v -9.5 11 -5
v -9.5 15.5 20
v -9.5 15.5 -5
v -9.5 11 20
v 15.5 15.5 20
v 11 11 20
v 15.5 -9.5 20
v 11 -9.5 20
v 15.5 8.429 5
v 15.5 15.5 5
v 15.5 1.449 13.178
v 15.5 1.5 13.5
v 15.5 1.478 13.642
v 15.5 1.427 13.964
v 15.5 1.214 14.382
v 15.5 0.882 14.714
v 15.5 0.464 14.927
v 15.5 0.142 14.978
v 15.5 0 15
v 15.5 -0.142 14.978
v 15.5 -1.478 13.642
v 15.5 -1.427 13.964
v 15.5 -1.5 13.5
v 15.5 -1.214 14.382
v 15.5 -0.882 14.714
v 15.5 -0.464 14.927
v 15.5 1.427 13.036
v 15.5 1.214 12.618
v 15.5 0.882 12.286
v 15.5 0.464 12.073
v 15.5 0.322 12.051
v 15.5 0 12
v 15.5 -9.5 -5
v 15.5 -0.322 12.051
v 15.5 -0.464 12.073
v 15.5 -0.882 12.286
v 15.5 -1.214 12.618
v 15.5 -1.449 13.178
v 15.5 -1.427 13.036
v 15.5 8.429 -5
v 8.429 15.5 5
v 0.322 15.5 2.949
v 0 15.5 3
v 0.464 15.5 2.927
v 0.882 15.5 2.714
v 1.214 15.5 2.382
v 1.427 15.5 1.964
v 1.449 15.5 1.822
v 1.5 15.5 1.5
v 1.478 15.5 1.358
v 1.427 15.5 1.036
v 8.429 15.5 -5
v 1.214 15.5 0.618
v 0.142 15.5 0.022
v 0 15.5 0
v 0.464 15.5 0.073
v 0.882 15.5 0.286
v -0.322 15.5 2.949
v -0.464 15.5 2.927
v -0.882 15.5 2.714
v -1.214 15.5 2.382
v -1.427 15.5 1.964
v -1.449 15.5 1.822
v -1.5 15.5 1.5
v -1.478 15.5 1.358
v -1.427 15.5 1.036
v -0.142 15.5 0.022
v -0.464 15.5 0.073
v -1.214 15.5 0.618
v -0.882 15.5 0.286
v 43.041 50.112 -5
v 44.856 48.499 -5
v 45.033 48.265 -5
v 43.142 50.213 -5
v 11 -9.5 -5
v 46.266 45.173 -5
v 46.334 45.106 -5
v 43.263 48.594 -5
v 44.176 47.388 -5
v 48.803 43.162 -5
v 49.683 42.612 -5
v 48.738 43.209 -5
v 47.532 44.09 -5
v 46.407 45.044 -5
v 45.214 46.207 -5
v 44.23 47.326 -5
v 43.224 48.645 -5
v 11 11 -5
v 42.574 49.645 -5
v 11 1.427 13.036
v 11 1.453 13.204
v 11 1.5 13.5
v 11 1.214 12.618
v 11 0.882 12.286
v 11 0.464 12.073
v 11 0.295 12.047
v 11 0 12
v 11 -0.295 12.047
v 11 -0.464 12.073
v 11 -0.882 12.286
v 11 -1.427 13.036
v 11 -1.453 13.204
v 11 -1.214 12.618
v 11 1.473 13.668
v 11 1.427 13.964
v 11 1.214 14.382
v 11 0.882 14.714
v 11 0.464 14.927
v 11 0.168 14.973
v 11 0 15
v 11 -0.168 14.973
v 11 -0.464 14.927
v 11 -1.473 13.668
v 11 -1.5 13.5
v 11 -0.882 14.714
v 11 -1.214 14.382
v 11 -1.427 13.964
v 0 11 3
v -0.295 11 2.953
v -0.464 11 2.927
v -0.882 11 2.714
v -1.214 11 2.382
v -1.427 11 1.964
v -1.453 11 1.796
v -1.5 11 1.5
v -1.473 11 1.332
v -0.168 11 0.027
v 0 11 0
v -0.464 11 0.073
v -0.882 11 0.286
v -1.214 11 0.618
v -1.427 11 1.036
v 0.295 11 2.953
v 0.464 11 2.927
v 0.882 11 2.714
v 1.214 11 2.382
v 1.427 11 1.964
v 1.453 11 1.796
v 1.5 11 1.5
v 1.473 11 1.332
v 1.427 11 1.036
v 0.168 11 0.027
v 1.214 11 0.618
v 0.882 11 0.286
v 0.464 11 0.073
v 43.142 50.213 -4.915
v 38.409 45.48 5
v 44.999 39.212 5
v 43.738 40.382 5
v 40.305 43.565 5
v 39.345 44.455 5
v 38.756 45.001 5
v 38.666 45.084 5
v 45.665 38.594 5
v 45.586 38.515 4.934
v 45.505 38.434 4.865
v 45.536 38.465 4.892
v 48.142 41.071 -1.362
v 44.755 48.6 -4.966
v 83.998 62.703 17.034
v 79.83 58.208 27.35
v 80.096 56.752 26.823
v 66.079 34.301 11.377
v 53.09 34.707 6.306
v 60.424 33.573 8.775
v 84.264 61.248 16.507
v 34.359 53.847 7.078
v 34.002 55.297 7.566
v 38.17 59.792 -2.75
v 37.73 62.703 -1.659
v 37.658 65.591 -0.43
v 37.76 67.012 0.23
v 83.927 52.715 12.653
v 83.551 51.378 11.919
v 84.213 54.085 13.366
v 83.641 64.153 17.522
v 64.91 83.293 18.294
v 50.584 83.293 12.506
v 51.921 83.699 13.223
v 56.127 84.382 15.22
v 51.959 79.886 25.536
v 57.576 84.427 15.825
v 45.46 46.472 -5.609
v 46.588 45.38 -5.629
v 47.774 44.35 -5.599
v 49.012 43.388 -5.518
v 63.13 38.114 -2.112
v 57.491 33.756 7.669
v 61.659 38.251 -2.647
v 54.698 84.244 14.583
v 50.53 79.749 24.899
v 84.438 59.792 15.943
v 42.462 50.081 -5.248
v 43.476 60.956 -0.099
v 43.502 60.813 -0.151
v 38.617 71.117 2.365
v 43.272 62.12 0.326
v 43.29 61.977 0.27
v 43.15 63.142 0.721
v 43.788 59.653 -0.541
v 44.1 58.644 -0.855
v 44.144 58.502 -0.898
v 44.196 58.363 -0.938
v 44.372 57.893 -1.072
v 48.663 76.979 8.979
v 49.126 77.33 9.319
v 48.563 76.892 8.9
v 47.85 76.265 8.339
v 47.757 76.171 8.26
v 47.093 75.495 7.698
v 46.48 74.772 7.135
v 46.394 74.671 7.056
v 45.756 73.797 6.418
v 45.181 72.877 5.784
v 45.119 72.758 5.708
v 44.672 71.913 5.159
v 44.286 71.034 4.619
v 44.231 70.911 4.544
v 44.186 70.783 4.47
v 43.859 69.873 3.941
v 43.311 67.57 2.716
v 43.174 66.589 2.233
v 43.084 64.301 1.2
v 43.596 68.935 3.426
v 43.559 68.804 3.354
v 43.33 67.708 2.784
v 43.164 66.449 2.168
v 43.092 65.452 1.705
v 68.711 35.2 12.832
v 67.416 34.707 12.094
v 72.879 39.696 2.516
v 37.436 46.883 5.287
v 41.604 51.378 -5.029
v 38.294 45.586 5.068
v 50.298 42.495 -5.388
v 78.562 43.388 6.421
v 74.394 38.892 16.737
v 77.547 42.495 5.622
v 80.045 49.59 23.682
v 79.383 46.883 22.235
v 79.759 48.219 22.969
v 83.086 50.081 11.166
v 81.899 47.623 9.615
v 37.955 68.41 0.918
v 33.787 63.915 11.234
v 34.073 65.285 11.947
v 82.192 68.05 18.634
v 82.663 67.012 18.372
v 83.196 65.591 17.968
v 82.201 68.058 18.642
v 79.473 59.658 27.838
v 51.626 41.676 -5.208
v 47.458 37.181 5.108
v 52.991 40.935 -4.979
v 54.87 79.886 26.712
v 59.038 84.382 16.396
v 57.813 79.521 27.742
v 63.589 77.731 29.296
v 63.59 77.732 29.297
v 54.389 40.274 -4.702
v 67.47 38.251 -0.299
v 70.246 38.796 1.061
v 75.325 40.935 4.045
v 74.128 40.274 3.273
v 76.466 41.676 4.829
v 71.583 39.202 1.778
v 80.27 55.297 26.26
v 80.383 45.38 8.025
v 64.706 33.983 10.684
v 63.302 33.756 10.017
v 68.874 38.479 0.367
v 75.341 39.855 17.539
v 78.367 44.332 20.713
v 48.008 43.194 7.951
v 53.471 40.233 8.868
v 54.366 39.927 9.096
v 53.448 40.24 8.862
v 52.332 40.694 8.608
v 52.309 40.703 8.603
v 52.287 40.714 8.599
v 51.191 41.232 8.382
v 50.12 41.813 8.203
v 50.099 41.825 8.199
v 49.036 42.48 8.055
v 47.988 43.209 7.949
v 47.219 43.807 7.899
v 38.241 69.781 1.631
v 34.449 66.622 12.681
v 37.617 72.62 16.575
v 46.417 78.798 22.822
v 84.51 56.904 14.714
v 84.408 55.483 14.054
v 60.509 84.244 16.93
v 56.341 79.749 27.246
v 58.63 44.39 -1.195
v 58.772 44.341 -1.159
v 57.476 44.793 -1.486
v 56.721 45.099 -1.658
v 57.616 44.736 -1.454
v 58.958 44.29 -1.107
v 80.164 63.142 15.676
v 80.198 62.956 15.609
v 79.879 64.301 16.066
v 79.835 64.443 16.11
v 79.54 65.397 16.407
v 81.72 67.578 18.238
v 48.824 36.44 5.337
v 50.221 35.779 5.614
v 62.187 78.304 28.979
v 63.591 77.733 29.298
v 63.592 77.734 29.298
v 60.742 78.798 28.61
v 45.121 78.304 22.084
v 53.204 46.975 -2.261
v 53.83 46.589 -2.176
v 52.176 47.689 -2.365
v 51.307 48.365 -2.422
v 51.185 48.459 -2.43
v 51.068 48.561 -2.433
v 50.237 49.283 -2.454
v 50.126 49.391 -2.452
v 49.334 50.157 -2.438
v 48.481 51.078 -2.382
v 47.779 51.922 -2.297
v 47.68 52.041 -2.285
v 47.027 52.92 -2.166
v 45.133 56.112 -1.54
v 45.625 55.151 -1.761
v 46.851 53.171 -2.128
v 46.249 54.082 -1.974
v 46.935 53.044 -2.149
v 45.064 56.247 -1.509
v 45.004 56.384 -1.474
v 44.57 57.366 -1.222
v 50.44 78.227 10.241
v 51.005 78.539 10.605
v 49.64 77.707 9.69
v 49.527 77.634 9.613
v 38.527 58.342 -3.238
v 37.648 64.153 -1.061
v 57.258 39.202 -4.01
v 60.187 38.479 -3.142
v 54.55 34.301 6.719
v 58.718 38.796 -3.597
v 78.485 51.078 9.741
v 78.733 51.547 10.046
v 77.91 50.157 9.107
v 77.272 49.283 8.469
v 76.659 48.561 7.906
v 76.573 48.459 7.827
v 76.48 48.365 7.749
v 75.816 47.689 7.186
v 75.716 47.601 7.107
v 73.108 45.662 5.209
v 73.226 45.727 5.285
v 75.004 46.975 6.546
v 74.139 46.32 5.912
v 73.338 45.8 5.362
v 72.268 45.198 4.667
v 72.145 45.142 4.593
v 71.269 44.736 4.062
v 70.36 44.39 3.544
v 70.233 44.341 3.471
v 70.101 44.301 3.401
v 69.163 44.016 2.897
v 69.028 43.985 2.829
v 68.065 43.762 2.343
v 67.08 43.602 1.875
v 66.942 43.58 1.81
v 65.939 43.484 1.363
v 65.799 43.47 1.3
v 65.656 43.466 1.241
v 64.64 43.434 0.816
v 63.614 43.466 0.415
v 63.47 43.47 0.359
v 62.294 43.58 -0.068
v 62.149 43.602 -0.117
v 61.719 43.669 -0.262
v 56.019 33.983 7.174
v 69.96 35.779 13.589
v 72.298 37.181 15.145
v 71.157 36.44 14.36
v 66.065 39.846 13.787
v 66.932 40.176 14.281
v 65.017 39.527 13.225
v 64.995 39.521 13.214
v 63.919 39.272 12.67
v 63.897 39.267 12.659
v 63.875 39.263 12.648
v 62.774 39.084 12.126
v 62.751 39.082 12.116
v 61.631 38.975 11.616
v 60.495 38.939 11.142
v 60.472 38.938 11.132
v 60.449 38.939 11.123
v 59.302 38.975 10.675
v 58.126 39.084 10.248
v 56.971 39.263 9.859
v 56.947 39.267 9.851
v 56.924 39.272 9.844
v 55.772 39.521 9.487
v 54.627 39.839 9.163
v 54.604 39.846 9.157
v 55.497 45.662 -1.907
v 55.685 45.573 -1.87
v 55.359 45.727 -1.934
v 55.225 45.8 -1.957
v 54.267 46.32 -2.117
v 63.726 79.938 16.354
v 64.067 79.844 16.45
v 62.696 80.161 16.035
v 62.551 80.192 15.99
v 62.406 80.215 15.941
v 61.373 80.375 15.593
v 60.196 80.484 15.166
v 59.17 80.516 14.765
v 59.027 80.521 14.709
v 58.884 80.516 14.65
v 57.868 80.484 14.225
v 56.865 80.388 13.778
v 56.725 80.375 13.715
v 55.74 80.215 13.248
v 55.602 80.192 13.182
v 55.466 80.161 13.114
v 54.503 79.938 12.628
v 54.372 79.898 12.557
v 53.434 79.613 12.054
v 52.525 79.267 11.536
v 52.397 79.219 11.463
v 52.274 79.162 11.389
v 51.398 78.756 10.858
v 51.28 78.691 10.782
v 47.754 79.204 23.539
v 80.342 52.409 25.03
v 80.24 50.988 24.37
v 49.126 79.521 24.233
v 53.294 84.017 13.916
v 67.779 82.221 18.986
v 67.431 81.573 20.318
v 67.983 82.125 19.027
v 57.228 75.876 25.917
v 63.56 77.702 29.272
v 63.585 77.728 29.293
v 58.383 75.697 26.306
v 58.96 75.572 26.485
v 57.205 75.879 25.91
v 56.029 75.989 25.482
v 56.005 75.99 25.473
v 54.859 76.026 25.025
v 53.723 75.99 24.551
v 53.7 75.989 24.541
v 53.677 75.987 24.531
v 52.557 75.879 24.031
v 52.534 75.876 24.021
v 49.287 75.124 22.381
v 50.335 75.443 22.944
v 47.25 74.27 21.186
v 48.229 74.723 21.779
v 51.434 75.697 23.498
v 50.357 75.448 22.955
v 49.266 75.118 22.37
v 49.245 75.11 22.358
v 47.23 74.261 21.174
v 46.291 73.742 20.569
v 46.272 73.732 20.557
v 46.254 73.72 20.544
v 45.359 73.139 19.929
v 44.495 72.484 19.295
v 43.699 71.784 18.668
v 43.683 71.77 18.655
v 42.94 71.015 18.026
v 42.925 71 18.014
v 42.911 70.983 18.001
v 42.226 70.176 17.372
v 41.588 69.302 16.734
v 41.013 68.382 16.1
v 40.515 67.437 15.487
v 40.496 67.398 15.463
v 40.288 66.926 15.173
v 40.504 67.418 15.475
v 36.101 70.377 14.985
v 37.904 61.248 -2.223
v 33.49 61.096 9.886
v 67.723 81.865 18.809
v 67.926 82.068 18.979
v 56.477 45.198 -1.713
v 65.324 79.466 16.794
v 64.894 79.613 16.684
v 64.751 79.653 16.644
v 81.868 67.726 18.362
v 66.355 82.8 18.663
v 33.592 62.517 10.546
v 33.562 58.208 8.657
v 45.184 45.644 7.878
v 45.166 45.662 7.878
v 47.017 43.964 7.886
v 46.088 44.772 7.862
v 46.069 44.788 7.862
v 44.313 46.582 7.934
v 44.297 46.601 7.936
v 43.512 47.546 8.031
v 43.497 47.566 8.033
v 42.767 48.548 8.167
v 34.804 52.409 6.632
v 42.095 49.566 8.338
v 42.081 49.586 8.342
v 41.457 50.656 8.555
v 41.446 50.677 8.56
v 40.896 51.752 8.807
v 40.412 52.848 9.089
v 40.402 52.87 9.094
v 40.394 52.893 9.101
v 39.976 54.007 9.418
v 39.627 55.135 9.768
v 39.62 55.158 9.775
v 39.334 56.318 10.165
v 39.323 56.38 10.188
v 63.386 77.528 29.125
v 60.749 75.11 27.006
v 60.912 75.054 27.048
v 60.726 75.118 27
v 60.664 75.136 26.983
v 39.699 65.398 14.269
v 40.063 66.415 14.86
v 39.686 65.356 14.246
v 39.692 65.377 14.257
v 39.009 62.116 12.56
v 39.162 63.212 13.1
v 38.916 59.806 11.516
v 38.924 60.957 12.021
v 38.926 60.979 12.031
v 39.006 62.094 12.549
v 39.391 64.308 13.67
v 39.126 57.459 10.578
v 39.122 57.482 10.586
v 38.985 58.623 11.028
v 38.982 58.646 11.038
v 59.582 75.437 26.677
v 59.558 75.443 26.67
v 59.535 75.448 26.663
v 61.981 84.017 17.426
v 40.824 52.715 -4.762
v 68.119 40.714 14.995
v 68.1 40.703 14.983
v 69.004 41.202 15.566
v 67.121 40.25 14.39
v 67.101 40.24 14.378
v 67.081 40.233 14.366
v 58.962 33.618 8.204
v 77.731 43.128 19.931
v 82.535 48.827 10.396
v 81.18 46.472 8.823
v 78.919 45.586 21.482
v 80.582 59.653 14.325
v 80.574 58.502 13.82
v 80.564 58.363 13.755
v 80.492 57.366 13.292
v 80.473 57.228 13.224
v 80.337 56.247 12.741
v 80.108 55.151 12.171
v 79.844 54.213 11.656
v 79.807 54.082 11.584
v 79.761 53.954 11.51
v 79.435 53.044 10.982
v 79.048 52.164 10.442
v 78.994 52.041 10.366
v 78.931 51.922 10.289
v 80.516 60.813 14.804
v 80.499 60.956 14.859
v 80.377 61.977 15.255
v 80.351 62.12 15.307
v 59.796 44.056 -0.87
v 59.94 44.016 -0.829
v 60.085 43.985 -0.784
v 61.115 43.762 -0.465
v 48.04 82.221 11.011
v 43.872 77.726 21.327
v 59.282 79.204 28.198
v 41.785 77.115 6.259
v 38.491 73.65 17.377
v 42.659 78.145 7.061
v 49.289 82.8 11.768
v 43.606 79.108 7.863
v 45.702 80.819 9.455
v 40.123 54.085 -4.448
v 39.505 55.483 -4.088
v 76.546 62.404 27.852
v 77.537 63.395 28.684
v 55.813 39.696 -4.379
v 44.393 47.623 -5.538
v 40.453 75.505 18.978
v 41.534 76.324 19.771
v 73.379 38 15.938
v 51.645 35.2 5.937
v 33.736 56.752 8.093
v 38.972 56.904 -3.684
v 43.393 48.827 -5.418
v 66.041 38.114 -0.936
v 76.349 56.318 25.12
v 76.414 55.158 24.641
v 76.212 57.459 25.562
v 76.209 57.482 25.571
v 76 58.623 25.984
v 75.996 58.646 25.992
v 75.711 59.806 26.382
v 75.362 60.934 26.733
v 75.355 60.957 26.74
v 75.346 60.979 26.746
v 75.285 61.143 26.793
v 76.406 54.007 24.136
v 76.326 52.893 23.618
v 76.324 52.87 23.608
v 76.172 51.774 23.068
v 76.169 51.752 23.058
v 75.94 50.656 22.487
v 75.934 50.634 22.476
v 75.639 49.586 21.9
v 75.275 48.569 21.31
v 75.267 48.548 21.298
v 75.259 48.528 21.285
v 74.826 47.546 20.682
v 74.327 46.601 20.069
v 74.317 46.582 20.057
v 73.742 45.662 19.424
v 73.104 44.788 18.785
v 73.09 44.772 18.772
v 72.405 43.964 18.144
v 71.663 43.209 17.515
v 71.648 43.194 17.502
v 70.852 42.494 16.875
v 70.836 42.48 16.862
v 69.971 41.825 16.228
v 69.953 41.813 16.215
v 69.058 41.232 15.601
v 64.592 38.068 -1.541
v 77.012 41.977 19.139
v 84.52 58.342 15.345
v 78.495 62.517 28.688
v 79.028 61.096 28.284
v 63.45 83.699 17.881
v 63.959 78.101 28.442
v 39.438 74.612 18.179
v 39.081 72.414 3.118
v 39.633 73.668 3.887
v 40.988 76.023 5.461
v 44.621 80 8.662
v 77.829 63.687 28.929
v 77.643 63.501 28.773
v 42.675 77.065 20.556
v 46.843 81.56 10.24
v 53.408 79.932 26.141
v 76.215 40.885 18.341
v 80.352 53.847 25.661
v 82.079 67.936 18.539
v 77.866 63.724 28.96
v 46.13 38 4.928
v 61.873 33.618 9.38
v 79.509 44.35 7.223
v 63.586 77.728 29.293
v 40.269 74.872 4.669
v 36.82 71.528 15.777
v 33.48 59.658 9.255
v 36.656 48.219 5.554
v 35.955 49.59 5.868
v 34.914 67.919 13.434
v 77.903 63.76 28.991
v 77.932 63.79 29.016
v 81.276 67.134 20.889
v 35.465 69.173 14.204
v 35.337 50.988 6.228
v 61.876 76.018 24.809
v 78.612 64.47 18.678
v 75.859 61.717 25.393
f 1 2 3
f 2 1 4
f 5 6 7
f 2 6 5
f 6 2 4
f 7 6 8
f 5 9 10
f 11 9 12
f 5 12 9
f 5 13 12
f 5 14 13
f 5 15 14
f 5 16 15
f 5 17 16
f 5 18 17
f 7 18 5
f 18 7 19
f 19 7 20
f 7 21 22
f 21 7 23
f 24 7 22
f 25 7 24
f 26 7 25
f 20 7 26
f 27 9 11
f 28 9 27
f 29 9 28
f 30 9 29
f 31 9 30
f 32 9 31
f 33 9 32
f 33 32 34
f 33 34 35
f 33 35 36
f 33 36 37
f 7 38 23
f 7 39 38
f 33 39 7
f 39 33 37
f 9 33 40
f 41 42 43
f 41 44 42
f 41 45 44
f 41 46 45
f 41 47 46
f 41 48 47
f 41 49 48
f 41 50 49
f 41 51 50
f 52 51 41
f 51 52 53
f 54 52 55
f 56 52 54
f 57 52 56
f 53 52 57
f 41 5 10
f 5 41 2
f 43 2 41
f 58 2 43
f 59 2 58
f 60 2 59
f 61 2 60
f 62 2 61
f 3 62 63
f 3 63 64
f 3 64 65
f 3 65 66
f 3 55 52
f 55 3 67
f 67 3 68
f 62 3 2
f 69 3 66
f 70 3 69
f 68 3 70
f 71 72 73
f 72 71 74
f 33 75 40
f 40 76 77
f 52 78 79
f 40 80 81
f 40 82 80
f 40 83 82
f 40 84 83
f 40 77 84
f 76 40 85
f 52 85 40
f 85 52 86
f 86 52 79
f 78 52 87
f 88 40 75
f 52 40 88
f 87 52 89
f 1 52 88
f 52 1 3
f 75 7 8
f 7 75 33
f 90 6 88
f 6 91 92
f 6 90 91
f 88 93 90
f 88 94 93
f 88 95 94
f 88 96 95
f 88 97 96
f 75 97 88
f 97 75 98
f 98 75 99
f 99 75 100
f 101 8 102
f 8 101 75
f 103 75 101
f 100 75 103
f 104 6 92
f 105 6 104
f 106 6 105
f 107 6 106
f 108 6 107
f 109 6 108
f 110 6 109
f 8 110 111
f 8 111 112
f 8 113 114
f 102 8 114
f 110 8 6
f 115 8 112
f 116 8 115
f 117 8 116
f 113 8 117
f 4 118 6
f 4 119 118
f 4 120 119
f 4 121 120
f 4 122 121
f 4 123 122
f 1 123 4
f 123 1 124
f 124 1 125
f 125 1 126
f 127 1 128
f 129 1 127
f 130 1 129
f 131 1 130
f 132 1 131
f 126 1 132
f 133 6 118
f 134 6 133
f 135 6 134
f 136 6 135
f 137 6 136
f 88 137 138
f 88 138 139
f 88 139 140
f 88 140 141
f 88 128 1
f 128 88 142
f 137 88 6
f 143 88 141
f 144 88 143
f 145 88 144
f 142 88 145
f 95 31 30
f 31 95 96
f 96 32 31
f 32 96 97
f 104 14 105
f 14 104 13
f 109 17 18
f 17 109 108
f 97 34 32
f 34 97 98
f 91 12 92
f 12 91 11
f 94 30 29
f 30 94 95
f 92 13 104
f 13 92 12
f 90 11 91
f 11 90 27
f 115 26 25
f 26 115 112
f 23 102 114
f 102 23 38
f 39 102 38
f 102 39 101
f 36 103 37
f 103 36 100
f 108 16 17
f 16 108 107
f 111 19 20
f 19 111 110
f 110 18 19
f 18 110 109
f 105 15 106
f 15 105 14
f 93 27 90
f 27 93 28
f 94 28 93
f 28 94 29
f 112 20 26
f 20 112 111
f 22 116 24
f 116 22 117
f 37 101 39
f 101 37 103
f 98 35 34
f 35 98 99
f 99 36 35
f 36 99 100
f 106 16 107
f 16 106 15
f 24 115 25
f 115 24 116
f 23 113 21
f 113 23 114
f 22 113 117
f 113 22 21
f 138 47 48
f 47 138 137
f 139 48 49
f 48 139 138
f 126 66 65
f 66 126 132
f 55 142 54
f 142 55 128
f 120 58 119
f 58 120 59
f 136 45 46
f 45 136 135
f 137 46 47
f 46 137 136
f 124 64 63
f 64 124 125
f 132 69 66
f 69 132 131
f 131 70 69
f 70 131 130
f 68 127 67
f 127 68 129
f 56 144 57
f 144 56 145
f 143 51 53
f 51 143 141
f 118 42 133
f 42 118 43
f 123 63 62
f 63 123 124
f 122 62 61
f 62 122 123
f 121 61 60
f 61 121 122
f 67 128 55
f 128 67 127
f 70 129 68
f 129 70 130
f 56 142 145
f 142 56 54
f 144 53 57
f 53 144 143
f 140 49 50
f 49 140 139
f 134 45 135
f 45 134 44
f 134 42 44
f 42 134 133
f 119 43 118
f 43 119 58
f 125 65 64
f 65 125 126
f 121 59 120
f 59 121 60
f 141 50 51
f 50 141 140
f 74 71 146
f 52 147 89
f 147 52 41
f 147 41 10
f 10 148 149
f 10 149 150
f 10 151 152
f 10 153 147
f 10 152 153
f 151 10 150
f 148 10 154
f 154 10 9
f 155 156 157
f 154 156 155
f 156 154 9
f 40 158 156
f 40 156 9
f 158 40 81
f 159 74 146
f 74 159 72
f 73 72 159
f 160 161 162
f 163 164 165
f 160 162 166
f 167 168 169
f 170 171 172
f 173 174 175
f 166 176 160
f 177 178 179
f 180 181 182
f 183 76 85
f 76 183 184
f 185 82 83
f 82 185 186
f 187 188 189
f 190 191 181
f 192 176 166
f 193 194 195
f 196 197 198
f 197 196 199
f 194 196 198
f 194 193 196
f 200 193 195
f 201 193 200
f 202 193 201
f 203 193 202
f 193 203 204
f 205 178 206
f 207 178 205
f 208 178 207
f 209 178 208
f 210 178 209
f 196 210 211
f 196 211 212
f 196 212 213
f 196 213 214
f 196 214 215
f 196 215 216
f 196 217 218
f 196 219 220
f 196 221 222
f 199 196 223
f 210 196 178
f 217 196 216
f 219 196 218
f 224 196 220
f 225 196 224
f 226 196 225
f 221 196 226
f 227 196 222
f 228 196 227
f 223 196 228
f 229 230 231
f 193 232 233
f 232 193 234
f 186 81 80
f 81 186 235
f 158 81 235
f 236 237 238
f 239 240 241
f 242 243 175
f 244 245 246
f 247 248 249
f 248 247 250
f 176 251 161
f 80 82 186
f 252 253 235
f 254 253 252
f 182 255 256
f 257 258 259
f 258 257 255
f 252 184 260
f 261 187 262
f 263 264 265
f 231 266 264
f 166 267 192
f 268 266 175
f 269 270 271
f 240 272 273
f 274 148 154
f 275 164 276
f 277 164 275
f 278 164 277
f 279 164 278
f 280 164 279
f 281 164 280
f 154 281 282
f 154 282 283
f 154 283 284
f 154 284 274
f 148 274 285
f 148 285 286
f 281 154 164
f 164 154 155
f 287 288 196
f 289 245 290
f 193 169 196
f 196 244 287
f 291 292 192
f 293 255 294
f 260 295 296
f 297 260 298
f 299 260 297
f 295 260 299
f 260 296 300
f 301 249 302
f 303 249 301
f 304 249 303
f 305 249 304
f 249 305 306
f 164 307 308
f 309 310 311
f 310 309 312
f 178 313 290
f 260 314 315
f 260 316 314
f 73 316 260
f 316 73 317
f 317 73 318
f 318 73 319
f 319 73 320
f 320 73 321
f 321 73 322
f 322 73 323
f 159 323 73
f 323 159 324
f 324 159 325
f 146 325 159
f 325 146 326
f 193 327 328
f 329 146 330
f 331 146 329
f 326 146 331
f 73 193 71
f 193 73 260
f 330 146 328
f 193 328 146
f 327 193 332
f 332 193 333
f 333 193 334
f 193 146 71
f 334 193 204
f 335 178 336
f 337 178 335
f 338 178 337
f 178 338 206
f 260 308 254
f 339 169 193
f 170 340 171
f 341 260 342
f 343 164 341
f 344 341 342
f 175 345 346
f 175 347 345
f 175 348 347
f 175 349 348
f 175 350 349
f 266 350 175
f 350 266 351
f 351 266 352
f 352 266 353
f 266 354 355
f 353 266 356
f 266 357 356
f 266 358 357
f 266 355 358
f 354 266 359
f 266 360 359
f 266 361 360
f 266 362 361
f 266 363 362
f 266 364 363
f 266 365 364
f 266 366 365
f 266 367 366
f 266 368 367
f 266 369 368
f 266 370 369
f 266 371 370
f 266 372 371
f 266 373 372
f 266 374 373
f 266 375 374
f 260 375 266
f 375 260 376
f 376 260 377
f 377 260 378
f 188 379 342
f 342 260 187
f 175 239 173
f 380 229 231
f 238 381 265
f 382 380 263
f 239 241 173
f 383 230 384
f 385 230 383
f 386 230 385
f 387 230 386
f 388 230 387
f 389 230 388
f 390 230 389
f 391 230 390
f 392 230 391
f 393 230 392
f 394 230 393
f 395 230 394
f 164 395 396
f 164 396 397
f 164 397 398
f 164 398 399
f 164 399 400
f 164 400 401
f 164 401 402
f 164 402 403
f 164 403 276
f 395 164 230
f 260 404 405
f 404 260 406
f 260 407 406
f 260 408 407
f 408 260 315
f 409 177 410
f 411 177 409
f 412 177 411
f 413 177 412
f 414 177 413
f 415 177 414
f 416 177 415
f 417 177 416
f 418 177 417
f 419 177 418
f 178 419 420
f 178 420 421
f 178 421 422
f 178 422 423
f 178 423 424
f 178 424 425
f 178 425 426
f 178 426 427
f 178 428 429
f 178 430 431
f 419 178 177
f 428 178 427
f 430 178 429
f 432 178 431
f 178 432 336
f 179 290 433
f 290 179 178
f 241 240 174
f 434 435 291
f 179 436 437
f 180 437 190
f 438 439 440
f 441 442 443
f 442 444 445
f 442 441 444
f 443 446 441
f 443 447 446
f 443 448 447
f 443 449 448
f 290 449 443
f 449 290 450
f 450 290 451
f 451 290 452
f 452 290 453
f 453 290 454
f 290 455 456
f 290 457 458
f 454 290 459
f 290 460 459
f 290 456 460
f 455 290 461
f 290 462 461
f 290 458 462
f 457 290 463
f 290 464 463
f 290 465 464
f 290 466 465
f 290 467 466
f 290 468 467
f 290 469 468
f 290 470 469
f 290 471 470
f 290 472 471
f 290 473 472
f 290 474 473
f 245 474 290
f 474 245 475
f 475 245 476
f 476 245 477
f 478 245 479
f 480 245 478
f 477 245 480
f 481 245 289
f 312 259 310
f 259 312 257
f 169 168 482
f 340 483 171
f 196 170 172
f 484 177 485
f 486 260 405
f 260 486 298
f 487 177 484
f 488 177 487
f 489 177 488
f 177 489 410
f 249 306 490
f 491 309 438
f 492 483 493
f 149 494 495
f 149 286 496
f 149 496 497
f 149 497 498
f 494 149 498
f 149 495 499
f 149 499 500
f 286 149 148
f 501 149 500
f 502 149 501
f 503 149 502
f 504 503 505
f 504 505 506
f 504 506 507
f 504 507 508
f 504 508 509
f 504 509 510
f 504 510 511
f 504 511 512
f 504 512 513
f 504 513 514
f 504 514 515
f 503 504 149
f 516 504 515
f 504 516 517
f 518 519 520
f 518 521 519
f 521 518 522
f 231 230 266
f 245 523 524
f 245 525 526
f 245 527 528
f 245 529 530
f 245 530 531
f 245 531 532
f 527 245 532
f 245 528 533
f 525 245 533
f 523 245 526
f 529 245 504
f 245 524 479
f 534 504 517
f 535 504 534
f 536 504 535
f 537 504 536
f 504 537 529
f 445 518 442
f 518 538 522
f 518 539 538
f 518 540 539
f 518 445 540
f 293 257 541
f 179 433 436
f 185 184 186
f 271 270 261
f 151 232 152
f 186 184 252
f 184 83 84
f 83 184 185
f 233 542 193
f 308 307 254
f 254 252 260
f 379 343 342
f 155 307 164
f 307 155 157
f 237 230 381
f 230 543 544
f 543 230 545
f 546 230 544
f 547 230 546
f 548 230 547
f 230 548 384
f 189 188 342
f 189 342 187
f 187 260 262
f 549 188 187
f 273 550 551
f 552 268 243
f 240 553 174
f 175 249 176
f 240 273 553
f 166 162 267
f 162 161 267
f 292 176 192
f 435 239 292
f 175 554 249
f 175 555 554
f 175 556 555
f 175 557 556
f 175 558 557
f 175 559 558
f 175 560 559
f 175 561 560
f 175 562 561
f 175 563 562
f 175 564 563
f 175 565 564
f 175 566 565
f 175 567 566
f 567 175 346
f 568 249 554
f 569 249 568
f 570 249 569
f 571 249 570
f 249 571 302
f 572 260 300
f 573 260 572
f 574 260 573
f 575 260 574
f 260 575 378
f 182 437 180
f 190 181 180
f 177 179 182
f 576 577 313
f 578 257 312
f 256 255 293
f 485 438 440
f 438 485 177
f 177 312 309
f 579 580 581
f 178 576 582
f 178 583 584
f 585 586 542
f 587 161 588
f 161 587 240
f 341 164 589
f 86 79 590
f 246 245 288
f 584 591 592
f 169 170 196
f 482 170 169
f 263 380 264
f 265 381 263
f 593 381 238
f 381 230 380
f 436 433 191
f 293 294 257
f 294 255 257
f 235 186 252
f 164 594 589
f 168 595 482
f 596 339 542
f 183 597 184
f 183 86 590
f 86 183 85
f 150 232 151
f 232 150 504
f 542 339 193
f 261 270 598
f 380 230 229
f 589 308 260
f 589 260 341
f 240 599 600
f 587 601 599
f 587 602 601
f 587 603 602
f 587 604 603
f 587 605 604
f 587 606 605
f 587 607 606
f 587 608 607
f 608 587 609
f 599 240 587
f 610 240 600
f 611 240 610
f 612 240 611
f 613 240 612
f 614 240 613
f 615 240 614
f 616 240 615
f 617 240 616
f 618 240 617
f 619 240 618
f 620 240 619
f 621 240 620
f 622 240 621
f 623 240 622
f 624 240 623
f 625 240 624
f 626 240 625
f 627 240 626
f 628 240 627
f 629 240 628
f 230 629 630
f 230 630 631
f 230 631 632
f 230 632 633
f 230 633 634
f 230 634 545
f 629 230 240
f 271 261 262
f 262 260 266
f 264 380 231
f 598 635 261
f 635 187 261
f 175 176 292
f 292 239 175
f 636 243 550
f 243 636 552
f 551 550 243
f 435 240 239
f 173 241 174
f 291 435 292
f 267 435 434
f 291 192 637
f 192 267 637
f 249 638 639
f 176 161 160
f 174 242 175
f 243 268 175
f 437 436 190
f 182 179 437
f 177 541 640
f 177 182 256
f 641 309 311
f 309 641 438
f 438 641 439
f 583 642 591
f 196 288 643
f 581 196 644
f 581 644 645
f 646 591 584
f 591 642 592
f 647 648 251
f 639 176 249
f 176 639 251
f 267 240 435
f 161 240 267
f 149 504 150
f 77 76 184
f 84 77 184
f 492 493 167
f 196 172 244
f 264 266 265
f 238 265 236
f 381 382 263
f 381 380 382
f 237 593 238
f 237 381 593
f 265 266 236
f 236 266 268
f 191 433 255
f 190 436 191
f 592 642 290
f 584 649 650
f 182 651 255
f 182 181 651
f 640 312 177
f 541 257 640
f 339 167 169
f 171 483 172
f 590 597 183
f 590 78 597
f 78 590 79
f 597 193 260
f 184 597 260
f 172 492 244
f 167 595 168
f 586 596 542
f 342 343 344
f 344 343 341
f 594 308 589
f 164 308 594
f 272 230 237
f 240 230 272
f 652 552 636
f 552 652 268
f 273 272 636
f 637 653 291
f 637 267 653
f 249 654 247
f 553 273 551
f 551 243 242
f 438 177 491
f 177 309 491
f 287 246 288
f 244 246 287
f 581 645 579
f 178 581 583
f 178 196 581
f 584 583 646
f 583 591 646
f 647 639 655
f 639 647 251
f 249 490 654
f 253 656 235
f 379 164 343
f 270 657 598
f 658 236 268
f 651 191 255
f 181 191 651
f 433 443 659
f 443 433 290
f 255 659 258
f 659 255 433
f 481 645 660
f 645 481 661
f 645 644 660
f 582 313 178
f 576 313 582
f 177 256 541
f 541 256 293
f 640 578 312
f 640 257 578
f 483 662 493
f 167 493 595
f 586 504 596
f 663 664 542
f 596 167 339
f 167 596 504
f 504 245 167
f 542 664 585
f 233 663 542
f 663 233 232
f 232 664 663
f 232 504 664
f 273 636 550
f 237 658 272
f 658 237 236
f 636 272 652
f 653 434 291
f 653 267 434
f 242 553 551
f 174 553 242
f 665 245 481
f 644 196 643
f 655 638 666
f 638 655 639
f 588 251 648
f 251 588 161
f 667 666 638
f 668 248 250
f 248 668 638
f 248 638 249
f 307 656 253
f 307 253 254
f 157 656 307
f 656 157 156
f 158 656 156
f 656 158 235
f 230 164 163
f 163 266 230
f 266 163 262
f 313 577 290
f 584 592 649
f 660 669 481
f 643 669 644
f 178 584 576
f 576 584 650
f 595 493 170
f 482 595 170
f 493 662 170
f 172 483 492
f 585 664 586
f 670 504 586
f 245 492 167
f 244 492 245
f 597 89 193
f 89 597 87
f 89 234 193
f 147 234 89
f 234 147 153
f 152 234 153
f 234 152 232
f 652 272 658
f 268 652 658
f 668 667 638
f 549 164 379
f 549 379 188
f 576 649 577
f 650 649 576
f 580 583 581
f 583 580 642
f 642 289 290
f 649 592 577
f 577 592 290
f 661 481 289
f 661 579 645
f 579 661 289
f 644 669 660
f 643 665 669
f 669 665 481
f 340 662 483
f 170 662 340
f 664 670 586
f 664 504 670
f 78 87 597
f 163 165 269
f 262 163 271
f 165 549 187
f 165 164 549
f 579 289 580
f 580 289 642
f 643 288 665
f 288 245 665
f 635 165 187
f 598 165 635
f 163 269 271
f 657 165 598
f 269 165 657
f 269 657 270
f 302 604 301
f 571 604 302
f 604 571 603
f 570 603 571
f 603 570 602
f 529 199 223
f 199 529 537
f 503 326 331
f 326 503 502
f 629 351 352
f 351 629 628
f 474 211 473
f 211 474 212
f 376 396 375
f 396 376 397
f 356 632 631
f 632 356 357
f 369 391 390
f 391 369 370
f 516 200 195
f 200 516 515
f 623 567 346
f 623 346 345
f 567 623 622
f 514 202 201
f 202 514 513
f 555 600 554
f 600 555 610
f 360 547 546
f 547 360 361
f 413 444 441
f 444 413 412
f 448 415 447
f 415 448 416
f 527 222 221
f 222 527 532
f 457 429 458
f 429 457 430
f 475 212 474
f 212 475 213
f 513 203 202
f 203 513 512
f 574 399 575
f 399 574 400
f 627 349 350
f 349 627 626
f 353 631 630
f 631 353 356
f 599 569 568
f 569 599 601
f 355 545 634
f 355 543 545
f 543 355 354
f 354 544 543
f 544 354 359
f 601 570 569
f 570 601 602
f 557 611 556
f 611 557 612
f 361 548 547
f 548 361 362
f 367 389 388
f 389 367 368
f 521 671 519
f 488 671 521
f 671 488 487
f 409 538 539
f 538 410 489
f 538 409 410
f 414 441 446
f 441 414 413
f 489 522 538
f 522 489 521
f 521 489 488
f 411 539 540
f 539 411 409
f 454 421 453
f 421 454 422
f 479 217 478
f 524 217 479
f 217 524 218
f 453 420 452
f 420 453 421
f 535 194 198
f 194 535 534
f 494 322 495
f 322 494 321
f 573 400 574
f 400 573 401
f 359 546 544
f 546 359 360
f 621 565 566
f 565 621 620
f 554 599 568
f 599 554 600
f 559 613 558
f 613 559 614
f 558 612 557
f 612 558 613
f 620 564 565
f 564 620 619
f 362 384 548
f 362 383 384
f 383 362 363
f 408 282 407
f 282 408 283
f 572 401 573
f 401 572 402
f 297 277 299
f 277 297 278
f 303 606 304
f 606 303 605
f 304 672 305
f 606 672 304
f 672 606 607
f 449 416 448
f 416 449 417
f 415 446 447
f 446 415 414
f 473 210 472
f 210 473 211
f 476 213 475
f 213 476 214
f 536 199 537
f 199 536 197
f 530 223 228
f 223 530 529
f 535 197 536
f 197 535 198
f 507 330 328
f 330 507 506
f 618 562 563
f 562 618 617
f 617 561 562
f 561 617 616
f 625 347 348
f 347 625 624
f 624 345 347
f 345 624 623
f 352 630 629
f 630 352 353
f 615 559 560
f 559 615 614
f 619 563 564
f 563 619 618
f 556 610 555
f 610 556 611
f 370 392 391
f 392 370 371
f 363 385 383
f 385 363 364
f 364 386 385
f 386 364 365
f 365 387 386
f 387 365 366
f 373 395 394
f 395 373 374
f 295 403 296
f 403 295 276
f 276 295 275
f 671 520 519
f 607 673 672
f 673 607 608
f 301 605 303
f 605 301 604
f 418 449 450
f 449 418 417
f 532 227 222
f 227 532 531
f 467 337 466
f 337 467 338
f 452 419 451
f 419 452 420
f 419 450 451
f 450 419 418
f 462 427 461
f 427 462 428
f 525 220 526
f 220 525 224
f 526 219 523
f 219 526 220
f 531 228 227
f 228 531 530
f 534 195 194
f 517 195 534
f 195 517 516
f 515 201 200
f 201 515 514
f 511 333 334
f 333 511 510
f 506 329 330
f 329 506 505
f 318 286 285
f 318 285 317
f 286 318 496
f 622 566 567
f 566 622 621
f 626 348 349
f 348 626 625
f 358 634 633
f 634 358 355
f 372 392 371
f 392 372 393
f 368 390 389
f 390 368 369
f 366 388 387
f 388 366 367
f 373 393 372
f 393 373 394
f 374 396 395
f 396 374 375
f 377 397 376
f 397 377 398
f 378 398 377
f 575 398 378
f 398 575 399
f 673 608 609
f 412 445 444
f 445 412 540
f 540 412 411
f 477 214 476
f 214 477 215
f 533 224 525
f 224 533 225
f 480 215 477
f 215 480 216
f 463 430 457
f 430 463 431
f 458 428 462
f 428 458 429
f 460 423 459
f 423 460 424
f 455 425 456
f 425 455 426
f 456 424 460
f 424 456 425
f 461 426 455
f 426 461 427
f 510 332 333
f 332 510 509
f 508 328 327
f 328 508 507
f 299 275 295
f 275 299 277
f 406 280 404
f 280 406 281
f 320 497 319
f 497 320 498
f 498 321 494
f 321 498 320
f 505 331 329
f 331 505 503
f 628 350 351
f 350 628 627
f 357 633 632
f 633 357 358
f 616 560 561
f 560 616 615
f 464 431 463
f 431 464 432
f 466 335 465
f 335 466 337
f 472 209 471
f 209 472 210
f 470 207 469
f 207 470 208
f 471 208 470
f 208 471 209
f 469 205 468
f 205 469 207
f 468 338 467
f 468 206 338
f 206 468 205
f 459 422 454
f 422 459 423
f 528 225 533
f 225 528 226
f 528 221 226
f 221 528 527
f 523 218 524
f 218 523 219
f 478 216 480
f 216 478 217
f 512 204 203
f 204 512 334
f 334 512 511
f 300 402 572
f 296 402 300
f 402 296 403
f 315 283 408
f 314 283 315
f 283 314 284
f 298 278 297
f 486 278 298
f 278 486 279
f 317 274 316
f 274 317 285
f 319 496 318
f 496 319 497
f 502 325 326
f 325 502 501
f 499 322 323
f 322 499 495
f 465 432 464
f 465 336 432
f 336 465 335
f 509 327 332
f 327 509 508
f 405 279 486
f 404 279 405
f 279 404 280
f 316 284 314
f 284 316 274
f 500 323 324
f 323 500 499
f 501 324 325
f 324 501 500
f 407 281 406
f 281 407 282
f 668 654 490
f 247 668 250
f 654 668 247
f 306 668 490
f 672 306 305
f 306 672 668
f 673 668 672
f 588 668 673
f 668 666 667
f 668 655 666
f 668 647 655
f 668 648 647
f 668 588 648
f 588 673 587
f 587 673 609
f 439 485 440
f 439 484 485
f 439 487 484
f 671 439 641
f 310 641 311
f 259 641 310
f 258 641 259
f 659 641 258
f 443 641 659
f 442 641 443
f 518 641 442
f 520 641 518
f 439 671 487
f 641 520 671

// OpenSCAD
module lamp() {
    color("lightgrey") {
        translate([0,0,55])
        cylinder(d=15, h=40, $fn=50);
        translate([0,0,55])
        cylinder(h=20, d1=40, d2=15);
        cylinder(d=40, h=55, $fn=100);
    }
    color("grey") {
        translate([0,0,-30])
        cylinder(h=30, d=35, $fn=100);
        translate([0,0,-70])
        cylinder(h=40, d2=35, d1=100, $fn=100);
    }
}

module frame() {
    color("lightgreen") {
        cube([22, 22, 200], center=true);
    }
}

union() {
translate([0,0,7.5])
difference() {
translate([3,3,0])
cube([25,25,25], center=true);
cube([22, 22, 50], center=true);

translate([0,0,6])
rotate([0,90,0])
cylinder(d=3, h=80, center=true, $fn=20);

translate([0,0,-6])
rotate([90,0,0])
cylinder(d=3, h=80, center=true, $fn=20);
}
difference() {
translate([29,29,0])
rotate([0,0,-45])
cube([10,50,10], center=true);

translate([60,60,10])
rotate([22,-22,0])
cylinder(d=48, h=20, center=true, $fn=100);
}

translate([0,0,12.3])
difference() {
translate([59,59,0])
rotate([22,-22,0])
cylinder(d=50, h=12, center=true, $fn=100);
translate([60,60,0])
rotate([22,-22,0])
cylinder(d=40, h=14, center=true, $fn=100);
// make a cut
translate([70,70,20])
rotate([0,0,45])
cube([50,20,50], center=true);
}
}

/*
frame();
translate([65,65,0])
rotate([22,-22,0])
lamp();
*/
